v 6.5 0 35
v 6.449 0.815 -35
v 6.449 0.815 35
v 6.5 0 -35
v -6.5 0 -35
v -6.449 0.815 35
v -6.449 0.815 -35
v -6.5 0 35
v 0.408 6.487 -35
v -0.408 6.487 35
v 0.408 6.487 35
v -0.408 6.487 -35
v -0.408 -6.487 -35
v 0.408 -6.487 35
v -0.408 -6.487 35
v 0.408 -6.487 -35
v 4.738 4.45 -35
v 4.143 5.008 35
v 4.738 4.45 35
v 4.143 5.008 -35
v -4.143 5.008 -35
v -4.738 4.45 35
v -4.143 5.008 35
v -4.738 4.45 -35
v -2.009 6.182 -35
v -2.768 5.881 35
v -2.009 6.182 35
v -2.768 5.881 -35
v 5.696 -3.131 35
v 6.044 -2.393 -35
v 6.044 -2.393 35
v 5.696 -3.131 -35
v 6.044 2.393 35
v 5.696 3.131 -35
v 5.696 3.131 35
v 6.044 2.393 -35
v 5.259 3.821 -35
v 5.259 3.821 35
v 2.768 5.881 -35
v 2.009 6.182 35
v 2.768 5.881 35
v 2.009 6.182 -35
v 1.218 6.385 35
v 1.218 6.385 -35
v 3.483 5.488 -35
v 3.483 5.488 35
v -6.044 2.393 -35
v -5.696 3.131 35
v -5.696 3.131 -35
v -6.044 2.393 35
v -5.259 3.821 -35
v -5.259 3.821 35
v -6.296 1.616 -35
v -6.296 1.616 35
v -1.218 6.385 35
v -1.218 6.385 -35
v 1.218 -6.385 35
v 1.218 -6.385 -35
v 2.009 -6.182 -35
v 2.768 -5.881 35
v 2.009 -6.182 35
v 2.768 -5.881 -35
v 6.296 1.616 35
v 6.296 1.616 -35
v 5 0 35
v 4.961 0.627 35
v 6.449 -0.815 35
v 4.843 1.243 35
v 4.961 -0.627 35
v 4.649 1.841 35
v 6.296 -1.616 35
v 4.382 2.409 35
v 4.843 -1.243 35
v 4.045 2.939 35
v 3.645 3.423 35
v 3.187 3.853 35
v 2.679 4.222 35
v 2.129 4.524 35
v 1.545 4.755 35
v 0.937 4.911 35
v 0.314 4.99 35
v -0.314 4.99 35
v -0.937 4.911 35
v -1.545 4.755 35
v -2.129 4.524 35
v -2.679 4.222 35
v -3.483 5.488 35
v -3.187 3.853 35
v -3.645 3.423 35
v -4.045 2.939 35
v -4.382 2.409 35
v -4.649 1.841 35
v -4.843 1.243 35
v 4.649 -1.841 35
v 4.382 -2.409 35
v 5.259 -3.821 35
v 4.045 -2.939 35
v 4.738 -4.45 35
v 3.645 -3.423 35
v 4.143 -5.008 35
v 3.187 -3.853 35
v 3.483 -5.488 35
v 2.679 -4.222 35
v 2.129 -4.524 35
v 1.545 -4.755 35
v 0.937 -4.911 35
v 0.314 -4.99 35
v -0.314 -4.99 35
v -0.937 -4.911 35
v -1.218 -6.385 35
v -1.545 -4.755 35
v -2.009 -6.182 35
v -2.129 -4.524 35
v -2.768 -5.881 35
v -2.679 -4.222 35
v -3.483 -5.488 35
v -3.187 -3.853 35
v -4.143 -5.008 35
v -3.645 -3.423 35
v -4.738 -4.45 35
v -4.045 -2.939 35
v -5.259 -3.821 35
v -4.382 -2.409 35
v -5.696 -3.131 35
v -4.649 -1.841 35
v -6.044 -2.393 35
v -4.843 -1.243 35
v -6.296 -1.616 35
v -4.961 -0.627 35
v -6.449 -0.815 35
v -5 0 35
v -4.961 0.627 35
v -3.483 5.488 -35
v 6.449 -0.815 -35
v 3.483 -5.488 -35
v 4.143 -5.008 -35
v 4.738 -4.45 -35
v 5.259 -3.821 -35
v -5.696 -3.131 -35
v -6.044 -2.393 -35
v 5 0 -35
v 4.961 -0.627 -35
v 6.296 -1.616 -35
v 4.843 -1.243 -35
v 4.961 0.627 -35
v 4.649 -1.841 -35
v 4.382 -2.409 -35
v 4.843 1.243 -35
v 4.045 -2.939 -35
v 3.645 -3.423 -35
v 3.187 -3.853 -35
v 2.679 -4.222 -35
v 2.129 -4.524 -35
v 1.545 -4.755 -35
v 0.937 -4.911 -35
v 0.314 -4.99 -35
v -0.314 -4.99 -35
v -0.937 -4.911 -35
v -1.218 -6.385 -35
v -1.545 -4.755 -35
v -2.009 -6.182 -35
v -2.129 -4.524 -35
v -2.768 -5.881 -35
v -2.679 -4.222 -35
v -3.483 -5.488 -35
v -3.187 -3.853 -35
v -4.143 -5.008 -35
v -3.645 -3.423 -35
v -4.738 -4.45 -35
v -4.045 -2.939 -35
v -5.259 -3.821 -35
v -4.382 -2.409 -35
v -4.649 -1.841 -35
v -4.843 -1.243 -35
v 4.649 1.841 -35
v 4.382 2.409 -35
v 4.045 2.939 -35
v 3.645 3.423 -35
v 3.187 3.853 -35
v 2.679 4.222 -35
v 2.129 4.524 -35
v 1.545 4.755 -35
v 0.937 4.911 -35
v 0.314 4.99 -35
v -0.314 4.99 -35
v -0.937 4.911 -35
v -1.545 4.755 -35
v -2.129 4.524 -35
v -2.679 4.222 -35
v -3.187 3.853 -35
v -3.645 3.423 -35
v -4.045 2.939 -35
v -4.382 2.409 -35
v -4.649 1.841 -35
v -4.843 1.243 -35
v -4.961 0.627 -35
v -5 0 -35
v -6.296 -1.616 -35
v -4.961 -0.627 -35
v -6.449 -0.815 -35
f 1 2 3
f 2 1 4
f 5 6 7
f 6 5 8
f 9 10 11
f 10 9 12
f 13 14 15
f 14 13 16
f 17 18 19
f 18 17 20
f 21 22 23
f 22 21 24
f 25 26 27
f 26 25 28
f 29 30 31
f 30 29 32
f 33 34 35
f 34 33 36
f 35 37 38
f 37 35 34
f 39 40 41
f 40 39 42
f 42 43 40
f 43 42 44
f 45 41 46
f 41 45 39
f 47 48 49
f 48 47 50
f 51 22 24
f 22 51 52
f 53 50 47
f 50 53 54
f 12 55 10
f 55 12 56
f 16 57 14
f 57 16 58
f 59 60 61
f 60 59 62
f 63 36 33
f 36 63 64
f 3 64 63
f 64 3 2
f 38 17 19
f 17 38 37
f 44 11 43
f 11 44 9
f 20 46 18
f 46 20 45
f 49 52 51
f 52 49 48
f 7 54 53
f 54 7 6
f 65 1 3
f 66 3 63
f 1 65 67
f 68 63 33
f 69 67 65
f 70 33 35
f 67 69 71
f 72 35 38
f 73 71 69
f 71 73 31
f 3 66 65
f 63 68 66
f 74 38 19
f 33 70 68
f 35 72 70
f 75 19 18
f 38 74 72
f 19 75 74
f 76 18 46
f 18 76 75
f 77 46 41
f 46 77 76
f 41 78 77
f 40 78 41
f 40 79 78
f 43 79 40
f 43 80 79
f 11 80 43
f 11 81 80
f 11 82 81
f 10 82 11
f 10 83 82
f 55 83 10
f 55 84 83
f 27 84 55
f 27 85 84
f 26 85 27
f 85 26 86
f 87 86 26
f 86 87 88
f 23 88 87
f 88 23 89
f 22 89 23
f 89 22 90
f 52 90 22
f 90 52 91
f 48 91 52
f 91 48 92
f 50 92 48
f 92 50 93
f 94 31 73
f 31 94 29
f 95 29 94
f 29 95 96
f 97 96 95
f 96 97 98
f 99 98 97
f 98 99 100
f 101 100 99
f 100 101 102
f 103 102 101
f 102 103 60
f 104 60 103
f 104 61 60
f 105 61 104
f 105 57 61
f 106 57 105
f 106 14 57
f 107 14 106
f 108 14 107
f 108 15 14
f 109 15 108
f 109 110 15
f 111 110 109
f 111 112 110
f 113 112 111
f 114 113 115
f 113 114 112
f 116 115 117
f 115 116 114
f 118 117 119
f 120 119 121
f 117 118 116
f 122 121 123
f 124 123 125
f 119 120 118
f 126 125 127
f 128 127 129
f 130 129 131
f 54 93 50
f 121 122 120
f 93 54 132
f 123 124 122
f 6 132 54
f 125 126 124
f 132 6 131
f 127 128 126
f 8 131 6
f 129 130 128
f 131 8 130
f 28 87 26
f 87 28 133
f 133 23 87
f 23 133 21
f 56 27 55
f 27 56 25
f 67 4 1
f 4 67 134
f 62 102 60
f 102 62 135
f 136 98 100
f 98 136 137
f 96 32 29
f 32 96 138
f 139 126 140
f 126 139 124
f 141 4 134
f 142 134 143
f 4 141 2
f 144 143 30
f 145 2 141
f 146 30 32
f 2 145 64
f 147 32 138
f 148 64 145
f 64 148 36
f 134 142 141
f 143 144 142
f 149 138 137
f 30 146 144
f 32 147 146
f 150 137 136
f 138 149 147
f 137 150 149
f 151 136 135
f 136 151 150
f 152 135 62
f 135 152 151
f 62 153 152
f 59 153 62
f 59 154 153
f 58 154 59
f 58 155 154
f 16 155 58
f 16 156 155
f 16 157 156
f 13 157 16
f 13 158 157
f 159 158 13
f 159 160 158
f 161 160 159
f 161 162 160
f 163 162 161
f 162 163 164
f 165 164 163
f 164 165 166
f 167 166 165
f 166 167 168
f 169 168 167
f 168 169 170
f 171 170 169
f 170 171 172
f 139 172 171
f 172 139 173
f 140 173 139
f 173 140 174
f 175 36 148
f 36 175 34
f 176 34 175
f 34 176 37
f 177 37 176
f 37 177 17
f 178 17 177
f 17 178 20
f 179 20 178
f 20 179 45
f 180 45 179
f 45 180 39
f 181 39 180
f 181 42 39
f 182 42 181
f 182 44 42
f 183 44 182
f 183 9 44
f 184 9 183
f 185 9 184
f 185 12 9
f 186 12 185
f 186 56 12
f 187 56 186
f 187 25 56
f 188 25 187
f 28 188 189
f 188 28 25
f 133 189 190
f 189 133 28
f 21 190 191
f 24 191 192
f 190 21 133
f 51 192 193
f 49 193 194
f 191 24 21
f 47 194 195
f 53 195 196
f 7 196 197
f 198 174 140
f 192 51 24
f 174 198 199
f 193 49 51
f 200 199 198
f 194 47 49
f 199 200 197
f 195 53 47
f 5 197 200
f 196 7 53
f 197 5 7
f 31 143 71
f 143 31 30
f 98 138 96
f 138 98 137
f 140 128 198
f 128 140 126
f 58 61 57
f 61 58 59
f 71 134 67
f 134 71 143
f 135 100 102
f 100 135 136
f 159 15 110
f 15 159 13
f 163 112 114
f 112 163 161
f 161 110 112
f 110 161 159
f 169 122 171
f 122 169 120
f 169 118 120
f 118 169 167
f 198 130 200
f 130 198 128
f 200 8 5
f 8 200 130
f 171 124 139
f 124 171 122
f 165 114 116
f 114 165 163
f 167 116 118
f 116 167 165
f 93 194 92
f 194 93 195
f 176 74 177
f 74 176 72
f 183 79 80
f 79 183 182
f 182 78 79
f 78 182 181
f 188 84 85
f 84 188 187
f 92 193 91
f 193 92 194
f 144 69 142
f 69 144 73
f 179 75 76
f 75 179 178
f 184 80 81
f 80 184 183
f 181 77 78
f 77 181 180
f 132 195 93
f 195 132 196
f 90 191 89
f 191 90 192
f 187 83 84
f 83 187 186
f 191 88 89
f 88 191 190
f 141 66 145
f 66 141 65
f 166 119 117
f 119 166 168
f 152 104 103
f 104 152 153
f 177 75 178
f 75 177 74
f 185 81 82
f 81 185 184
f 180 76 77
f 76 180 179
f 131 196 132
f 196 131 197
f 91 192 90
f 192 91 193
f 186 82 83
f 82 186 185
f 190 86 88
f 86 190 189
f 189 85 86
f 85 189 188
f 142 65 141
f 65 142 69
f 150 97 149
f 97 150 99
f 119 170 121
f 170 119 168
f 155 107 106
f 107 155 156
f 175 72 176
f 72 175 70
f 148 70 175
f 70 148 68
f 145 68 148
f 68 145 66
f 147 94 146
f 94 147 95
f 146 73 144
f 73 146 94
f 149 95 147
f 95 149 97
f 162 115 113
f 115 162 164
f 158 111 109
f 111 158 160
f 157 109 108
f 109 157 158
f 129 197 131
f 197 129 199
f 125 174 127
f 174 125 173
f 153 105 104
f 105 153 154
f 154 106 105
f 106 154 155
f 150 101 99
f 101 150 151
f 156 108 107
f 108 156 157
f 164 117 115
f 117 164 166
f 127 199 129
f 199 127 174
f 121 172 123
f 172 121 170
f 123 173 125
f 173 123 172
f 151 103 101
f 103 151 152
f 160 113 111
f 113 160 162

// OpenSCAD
$fn = 50;


difference() {
	union() {
		translate(v = [0, 0, -35.0000000000]) {
			cylinder(h = 70, r = 6.5000000000);
		}
	}
	union() {
		translate(v = [0, 0, -100.0000000000]) {
			cylinder(h = 200, r = 5);
		}
	}
}
